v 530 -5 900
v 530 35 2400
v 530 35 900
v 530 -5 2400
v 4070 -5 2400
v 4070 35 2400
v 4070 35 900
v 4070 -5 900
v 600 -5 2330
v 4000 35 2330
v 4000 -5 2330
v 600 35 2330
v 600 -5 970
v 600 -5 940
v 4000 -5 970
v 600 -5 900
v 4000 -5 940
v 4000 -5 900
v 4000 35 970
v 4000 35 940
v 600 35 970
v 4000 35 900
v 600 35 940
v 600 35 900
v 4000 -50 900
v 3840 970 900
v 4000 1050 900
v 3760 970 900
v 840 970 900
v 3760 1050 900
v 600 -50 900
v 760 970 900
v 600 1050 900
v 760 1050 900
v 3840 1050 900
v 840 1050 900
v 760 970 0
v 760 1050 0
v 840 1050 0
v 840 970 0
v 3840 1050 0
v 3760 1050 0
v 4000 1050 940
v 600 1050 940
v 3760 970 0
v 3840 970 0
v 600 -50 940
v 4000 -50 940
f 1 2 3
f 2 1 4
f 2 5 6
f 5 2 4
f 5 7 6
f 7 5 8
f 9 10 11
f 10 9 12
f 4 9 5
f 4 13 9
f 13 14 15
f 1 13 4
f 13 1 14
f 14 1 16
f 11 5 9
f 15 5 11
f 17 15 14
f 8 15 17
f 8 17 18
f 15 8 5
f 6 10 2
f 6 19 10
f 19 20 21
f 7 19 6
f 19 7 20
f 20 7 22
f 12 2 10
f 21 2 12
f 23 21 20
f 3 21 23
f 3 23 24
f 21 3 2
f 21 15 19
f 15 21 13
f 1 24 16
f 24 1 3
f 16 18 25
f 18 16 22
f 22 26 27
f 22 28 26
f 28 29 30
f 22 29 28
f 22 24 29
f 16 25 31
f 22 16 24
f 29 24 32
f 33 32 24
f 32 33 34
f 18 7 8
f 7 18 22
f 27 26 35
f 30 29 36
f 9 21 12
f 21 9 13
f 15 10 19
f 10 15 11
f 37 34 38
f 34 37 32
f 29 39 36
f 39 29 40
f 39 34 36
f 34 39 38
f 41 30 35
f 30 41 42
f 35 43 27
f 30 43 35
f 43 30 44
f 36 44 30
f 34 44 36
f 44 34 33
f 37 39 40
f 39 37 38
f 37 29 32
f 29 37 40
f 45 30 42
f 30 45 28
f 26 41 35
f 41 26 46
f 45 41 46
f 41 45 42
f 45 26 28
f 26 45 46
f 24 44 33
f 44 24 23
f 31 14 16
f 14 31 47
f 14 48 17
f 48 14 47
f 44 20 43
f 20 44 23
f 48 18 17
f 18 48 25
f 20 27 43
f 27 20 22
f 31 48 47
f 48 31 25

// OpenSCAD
// part_window_jamb_left.scad — Export the left vertical frame bar as standalone OBJ.
// Press F6 (render), then File -> Export as OBJ.
include <tea_shop_counter_modules.scad>;
window_jamb_left();
